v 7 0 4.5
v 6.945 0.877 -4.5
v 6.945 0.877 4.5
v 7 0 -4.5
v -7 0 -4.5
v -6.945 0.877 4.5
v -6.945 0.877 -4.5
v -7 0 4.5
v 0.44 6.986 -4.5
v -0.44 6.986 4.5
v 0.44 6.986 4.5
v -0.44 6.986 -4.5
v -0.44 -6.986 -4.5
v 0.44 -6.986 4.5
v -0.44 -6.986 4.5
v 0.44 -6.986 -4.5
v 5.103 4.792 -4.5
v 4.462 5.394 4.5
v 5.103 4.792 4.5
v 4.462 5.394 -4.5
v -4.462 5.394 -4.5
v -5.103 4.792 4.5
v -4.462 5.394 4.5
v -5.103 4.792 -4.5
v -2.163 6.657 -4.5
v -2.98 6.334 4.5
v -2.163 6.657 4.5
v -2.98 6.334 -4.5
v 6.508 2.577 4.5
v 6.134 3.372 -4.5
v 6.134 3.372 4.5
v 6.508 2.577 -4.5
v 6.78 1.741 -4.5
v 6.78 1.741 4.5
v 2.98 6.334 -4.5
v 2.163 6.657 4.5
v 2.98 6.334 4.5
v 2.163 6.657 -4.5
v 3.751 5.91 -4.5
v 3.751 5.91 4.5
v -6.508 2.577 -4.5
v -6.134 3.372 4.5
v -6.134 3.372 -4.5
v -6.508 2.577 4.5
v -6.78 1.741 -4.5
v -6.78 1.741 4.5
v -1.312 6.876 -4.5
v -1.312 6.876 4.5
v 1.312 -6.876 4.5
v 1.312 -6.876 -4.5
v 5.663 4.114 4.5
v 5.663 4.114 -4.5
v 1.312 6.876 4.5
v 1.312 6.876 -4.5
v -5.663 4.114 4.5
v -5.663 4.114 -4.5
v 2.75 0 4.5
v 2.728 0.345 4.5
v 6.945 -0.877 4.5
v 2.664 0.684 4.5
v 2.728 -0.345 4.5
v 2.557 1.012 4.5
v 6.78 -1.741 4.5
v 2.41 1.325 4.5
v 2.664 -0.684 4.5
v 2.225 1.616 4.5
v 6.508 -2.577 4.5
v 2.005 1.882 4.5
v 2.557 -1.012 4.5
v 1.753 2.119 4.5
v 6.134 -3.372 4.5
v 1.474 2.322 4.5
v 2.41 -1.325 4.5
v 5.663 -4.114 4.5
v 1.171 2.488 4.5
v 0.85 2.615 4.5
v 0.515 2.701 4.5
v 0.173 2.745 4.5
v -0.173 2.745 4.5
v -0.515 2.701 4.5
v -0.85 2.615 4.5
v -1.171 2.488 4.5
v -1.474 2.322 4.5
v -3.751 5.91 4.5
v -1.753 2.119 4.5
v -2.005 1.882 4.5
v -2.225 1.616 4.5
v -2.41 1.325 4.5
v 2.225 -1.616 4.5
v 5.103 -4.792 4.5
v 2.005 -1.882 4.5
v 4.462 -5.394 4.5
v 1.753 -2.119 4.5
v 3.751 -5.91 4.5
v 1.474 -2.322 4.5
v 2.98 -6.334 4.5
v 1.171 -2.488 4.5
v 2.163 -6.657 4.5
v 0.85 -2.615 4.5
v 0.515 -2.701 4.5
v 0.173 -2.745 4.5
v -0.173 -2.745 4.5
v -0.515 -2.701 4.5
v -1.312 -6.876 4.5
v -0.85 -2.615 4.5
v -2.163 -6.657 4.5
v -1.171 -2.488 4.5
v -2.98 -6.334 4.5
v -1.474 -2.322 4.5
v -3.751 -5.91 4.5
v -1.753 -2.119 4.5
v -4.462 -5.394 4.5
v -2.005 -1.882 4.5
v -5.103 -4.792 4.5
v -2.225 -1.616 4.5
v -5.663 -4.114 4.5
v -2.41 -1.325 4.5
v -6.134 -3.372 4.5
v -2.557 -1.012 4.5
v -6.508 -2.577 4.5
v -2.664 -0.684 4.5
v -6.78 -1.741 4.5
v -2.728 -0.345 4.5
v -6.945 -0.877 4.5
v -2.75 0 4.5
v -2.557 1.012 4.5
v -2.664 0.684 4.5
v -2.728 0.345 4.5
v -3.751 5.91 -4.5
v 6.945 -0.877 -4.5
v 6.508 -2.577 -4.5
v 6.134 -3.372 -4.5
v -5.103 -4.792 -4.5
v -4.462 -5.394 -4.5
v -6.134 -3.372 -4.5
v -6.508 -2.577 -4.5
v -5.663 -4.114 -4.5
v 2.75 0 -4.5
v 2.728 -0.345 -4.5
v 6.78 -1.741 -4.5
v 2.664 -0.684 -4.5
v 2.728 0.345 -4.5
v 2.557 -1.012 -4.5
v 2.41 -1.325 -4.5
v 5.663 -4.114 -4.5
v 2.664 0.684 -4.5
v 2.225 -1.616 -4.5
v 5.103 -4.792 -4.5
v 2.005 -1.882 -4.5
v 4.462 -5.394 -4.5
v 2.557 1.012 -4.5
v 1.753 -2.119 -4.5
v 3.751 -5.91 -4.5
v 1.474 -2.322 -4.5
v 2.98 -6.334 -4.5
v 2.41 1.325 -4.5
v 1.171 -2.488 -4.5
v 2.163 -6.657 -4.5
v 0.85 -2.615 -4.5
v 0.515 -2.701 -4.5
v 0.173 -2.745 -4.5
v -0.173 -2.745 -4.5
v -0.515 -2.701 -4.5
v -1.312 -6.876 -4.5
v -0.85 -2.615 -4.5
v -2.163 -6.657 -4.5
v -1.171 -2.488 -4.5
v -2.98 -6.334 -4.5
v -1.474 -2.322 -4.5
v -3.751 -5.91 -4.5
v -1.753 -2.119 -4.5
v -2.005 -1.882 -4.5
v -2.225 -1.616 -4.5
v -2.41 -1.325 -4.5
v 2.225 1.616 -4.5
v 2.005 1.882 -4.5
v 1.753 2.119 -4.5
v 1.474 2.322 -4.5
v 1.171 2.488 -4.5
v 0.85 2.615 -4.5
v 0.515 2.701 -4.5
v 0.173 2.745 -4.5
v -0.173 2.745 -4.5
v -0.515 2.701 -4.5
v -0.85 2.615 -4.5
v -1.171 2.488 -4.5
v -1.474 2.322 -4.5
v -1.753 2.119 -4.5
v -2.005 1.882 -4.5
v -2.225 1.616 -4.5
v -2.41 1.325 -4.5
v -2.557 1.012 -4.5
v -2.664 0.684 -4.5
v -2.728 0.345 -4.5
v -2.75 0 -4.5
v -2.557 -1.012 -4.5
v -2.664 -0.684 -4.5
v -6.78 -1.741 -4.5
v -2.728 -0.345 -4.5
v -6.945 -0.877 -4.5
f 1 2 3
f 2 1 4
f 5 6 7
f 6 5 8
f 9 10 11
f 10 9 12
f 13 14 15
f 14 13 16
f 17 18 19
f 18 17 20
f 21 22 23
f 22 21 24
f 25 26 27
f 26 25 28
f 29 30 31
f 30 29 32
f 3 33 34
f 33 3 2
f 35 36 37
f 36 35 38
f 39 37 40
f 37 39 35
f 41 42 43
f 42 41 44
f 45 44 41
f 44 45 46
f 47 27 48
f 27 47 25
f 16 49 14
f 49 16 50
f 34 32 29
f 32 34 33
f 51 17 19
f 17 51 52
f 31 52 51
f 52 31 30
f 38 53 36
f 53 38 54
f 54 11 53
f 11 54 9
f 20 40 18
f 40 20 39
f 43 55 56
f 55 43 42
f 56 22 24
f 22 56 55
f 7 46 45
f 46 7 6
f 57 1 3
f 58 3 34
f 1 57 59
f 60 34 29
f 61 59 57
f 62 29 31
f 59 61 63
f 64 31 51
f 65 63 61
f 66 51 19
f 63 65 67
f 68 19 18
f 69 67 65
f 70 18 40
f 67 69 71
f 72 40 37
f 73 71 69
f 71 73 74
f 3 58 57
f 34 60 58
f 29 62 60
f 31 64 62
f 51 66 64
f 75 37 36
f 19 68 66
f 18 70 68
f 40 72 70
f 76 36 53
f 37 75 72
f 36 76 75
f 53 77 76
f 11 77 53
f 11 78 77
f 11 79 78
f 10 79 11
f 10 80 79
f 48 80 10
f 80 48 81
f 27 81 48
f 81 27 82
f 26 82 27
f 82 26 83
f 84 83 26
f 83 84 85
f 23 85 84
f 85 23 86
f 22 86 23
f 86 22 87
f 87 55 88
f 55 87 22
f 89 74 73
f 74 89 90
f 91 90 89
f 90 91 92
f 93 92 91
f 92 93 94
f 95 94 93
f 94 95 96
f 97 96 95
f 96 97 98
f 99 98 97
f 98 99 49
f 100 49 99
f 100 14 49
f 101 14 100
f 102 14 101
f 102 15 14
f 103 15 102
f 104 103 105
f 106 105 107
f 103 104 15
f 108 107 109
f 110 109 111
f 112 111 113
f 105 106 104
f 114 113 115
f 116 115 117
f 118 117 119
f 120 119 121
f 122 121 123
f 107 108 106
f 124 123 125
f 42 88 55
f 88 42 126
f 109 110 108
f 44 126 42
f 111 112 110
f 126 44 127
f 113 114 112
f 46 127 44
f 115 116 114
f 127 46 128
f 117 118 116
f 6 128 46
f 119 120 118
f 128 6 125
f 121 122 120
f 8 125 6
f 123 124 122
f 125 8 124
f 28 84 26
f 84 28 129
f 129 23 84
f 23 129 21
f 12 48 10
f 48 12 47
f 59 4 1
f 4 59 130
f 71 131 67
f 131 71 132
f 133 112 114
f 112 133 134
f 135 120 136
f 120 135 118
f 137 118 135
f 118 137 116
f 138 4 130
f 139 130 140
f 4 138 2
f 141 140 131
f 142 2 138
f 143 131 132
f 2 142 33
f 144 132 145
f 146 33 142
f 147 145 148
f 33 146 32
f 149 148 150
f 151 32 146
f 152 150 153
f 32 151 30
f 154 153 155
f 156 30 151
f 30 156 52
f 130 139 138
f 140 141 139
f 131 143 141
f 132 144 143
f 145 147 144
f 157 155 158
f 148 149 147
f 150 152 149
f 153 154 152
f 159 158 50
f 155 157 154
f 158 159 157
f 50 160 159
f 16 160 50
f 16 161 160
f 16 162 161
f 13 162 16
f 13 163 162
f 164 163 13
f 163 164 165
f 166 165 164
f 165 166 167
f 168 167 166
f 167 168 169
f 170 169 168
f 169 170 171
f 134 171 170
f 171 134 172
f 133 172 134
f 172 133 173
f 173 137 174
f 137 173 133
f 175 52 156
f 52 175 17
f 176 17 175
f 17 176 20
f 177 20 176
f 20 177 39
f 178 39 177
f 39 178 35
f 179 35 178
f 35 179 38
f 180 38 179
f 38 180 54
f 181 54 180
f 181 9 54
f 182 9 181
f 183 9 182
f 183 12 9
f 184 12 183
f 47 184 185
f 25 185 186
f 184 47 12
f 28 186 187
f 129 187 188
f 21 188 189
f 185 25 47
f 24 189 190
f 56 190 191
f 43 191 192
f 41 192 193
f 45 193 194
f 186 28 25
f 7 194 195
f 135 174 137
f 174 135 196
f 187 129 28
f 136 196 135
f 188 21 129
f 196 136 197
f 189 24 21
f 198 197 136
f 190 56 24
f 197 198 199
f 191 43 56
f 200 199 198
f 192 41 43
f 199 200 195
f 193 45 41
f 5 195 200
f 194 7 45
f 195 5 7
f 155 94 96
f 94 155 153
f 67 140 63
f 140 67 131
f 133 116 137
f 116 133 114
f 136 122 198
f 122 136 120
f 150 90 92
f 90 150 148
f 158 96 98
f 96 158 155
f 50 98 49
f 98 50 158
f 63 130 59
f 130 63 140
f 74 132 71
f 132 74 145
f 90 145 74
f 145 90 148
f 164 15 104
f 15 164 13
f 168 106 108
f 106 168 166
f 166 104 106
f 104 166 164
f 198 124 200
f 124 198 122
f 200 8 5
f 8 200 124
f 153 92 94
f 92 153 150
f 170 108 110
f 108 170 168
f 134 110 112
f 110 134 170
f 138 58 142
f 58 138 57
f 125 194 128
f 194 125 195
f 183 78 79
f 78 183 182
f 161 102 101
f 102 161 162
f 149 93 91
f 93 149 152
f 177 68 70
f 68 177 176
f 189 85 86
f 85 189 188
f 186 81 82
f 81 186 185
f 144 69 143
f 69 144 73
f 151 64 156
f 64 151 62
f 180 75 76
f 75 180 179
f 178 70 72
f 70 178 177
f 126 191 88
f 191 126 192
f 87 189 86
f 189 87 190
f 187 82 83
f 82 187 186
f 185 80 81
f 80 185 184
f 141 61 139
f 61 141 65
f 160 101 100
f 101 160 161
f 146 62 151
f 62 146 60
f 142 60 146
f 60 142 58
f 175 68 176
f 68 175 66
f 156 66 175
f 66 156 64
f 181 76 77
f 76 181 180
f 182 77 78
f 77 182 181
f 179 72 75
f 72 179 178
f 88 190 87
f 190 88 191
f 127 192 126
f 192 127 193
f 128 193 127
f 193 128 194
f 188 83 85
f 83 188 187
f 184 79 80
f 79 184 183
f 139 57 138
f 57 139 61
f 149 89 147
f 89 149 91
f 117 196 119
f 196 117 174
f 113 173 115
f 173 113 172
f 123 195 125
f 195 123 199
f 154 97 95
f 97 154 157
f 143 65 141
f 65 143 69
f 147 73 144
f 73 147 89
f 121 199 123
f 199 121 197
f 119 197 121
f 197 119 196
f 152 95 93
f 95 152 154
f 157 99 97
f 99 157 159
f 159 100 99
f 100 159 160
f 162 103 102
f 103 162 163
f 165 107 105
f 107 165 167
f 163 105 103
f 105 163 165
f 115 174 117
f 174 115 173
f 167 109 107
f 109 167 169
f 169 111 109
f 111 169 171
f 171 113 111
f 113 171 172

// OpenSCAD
$fn = 50;


difference() {
	union() {
		translate(v = [0, 0, -4.5000000000]) {
			cylinder(h = 9, r = 7.0000000000);
		}
	}
	union() {
		translate(v = [0, 0, -100.0000000000]) {
			cylinder(h = 200, r = 2.7500000000);
		}
	}
}
